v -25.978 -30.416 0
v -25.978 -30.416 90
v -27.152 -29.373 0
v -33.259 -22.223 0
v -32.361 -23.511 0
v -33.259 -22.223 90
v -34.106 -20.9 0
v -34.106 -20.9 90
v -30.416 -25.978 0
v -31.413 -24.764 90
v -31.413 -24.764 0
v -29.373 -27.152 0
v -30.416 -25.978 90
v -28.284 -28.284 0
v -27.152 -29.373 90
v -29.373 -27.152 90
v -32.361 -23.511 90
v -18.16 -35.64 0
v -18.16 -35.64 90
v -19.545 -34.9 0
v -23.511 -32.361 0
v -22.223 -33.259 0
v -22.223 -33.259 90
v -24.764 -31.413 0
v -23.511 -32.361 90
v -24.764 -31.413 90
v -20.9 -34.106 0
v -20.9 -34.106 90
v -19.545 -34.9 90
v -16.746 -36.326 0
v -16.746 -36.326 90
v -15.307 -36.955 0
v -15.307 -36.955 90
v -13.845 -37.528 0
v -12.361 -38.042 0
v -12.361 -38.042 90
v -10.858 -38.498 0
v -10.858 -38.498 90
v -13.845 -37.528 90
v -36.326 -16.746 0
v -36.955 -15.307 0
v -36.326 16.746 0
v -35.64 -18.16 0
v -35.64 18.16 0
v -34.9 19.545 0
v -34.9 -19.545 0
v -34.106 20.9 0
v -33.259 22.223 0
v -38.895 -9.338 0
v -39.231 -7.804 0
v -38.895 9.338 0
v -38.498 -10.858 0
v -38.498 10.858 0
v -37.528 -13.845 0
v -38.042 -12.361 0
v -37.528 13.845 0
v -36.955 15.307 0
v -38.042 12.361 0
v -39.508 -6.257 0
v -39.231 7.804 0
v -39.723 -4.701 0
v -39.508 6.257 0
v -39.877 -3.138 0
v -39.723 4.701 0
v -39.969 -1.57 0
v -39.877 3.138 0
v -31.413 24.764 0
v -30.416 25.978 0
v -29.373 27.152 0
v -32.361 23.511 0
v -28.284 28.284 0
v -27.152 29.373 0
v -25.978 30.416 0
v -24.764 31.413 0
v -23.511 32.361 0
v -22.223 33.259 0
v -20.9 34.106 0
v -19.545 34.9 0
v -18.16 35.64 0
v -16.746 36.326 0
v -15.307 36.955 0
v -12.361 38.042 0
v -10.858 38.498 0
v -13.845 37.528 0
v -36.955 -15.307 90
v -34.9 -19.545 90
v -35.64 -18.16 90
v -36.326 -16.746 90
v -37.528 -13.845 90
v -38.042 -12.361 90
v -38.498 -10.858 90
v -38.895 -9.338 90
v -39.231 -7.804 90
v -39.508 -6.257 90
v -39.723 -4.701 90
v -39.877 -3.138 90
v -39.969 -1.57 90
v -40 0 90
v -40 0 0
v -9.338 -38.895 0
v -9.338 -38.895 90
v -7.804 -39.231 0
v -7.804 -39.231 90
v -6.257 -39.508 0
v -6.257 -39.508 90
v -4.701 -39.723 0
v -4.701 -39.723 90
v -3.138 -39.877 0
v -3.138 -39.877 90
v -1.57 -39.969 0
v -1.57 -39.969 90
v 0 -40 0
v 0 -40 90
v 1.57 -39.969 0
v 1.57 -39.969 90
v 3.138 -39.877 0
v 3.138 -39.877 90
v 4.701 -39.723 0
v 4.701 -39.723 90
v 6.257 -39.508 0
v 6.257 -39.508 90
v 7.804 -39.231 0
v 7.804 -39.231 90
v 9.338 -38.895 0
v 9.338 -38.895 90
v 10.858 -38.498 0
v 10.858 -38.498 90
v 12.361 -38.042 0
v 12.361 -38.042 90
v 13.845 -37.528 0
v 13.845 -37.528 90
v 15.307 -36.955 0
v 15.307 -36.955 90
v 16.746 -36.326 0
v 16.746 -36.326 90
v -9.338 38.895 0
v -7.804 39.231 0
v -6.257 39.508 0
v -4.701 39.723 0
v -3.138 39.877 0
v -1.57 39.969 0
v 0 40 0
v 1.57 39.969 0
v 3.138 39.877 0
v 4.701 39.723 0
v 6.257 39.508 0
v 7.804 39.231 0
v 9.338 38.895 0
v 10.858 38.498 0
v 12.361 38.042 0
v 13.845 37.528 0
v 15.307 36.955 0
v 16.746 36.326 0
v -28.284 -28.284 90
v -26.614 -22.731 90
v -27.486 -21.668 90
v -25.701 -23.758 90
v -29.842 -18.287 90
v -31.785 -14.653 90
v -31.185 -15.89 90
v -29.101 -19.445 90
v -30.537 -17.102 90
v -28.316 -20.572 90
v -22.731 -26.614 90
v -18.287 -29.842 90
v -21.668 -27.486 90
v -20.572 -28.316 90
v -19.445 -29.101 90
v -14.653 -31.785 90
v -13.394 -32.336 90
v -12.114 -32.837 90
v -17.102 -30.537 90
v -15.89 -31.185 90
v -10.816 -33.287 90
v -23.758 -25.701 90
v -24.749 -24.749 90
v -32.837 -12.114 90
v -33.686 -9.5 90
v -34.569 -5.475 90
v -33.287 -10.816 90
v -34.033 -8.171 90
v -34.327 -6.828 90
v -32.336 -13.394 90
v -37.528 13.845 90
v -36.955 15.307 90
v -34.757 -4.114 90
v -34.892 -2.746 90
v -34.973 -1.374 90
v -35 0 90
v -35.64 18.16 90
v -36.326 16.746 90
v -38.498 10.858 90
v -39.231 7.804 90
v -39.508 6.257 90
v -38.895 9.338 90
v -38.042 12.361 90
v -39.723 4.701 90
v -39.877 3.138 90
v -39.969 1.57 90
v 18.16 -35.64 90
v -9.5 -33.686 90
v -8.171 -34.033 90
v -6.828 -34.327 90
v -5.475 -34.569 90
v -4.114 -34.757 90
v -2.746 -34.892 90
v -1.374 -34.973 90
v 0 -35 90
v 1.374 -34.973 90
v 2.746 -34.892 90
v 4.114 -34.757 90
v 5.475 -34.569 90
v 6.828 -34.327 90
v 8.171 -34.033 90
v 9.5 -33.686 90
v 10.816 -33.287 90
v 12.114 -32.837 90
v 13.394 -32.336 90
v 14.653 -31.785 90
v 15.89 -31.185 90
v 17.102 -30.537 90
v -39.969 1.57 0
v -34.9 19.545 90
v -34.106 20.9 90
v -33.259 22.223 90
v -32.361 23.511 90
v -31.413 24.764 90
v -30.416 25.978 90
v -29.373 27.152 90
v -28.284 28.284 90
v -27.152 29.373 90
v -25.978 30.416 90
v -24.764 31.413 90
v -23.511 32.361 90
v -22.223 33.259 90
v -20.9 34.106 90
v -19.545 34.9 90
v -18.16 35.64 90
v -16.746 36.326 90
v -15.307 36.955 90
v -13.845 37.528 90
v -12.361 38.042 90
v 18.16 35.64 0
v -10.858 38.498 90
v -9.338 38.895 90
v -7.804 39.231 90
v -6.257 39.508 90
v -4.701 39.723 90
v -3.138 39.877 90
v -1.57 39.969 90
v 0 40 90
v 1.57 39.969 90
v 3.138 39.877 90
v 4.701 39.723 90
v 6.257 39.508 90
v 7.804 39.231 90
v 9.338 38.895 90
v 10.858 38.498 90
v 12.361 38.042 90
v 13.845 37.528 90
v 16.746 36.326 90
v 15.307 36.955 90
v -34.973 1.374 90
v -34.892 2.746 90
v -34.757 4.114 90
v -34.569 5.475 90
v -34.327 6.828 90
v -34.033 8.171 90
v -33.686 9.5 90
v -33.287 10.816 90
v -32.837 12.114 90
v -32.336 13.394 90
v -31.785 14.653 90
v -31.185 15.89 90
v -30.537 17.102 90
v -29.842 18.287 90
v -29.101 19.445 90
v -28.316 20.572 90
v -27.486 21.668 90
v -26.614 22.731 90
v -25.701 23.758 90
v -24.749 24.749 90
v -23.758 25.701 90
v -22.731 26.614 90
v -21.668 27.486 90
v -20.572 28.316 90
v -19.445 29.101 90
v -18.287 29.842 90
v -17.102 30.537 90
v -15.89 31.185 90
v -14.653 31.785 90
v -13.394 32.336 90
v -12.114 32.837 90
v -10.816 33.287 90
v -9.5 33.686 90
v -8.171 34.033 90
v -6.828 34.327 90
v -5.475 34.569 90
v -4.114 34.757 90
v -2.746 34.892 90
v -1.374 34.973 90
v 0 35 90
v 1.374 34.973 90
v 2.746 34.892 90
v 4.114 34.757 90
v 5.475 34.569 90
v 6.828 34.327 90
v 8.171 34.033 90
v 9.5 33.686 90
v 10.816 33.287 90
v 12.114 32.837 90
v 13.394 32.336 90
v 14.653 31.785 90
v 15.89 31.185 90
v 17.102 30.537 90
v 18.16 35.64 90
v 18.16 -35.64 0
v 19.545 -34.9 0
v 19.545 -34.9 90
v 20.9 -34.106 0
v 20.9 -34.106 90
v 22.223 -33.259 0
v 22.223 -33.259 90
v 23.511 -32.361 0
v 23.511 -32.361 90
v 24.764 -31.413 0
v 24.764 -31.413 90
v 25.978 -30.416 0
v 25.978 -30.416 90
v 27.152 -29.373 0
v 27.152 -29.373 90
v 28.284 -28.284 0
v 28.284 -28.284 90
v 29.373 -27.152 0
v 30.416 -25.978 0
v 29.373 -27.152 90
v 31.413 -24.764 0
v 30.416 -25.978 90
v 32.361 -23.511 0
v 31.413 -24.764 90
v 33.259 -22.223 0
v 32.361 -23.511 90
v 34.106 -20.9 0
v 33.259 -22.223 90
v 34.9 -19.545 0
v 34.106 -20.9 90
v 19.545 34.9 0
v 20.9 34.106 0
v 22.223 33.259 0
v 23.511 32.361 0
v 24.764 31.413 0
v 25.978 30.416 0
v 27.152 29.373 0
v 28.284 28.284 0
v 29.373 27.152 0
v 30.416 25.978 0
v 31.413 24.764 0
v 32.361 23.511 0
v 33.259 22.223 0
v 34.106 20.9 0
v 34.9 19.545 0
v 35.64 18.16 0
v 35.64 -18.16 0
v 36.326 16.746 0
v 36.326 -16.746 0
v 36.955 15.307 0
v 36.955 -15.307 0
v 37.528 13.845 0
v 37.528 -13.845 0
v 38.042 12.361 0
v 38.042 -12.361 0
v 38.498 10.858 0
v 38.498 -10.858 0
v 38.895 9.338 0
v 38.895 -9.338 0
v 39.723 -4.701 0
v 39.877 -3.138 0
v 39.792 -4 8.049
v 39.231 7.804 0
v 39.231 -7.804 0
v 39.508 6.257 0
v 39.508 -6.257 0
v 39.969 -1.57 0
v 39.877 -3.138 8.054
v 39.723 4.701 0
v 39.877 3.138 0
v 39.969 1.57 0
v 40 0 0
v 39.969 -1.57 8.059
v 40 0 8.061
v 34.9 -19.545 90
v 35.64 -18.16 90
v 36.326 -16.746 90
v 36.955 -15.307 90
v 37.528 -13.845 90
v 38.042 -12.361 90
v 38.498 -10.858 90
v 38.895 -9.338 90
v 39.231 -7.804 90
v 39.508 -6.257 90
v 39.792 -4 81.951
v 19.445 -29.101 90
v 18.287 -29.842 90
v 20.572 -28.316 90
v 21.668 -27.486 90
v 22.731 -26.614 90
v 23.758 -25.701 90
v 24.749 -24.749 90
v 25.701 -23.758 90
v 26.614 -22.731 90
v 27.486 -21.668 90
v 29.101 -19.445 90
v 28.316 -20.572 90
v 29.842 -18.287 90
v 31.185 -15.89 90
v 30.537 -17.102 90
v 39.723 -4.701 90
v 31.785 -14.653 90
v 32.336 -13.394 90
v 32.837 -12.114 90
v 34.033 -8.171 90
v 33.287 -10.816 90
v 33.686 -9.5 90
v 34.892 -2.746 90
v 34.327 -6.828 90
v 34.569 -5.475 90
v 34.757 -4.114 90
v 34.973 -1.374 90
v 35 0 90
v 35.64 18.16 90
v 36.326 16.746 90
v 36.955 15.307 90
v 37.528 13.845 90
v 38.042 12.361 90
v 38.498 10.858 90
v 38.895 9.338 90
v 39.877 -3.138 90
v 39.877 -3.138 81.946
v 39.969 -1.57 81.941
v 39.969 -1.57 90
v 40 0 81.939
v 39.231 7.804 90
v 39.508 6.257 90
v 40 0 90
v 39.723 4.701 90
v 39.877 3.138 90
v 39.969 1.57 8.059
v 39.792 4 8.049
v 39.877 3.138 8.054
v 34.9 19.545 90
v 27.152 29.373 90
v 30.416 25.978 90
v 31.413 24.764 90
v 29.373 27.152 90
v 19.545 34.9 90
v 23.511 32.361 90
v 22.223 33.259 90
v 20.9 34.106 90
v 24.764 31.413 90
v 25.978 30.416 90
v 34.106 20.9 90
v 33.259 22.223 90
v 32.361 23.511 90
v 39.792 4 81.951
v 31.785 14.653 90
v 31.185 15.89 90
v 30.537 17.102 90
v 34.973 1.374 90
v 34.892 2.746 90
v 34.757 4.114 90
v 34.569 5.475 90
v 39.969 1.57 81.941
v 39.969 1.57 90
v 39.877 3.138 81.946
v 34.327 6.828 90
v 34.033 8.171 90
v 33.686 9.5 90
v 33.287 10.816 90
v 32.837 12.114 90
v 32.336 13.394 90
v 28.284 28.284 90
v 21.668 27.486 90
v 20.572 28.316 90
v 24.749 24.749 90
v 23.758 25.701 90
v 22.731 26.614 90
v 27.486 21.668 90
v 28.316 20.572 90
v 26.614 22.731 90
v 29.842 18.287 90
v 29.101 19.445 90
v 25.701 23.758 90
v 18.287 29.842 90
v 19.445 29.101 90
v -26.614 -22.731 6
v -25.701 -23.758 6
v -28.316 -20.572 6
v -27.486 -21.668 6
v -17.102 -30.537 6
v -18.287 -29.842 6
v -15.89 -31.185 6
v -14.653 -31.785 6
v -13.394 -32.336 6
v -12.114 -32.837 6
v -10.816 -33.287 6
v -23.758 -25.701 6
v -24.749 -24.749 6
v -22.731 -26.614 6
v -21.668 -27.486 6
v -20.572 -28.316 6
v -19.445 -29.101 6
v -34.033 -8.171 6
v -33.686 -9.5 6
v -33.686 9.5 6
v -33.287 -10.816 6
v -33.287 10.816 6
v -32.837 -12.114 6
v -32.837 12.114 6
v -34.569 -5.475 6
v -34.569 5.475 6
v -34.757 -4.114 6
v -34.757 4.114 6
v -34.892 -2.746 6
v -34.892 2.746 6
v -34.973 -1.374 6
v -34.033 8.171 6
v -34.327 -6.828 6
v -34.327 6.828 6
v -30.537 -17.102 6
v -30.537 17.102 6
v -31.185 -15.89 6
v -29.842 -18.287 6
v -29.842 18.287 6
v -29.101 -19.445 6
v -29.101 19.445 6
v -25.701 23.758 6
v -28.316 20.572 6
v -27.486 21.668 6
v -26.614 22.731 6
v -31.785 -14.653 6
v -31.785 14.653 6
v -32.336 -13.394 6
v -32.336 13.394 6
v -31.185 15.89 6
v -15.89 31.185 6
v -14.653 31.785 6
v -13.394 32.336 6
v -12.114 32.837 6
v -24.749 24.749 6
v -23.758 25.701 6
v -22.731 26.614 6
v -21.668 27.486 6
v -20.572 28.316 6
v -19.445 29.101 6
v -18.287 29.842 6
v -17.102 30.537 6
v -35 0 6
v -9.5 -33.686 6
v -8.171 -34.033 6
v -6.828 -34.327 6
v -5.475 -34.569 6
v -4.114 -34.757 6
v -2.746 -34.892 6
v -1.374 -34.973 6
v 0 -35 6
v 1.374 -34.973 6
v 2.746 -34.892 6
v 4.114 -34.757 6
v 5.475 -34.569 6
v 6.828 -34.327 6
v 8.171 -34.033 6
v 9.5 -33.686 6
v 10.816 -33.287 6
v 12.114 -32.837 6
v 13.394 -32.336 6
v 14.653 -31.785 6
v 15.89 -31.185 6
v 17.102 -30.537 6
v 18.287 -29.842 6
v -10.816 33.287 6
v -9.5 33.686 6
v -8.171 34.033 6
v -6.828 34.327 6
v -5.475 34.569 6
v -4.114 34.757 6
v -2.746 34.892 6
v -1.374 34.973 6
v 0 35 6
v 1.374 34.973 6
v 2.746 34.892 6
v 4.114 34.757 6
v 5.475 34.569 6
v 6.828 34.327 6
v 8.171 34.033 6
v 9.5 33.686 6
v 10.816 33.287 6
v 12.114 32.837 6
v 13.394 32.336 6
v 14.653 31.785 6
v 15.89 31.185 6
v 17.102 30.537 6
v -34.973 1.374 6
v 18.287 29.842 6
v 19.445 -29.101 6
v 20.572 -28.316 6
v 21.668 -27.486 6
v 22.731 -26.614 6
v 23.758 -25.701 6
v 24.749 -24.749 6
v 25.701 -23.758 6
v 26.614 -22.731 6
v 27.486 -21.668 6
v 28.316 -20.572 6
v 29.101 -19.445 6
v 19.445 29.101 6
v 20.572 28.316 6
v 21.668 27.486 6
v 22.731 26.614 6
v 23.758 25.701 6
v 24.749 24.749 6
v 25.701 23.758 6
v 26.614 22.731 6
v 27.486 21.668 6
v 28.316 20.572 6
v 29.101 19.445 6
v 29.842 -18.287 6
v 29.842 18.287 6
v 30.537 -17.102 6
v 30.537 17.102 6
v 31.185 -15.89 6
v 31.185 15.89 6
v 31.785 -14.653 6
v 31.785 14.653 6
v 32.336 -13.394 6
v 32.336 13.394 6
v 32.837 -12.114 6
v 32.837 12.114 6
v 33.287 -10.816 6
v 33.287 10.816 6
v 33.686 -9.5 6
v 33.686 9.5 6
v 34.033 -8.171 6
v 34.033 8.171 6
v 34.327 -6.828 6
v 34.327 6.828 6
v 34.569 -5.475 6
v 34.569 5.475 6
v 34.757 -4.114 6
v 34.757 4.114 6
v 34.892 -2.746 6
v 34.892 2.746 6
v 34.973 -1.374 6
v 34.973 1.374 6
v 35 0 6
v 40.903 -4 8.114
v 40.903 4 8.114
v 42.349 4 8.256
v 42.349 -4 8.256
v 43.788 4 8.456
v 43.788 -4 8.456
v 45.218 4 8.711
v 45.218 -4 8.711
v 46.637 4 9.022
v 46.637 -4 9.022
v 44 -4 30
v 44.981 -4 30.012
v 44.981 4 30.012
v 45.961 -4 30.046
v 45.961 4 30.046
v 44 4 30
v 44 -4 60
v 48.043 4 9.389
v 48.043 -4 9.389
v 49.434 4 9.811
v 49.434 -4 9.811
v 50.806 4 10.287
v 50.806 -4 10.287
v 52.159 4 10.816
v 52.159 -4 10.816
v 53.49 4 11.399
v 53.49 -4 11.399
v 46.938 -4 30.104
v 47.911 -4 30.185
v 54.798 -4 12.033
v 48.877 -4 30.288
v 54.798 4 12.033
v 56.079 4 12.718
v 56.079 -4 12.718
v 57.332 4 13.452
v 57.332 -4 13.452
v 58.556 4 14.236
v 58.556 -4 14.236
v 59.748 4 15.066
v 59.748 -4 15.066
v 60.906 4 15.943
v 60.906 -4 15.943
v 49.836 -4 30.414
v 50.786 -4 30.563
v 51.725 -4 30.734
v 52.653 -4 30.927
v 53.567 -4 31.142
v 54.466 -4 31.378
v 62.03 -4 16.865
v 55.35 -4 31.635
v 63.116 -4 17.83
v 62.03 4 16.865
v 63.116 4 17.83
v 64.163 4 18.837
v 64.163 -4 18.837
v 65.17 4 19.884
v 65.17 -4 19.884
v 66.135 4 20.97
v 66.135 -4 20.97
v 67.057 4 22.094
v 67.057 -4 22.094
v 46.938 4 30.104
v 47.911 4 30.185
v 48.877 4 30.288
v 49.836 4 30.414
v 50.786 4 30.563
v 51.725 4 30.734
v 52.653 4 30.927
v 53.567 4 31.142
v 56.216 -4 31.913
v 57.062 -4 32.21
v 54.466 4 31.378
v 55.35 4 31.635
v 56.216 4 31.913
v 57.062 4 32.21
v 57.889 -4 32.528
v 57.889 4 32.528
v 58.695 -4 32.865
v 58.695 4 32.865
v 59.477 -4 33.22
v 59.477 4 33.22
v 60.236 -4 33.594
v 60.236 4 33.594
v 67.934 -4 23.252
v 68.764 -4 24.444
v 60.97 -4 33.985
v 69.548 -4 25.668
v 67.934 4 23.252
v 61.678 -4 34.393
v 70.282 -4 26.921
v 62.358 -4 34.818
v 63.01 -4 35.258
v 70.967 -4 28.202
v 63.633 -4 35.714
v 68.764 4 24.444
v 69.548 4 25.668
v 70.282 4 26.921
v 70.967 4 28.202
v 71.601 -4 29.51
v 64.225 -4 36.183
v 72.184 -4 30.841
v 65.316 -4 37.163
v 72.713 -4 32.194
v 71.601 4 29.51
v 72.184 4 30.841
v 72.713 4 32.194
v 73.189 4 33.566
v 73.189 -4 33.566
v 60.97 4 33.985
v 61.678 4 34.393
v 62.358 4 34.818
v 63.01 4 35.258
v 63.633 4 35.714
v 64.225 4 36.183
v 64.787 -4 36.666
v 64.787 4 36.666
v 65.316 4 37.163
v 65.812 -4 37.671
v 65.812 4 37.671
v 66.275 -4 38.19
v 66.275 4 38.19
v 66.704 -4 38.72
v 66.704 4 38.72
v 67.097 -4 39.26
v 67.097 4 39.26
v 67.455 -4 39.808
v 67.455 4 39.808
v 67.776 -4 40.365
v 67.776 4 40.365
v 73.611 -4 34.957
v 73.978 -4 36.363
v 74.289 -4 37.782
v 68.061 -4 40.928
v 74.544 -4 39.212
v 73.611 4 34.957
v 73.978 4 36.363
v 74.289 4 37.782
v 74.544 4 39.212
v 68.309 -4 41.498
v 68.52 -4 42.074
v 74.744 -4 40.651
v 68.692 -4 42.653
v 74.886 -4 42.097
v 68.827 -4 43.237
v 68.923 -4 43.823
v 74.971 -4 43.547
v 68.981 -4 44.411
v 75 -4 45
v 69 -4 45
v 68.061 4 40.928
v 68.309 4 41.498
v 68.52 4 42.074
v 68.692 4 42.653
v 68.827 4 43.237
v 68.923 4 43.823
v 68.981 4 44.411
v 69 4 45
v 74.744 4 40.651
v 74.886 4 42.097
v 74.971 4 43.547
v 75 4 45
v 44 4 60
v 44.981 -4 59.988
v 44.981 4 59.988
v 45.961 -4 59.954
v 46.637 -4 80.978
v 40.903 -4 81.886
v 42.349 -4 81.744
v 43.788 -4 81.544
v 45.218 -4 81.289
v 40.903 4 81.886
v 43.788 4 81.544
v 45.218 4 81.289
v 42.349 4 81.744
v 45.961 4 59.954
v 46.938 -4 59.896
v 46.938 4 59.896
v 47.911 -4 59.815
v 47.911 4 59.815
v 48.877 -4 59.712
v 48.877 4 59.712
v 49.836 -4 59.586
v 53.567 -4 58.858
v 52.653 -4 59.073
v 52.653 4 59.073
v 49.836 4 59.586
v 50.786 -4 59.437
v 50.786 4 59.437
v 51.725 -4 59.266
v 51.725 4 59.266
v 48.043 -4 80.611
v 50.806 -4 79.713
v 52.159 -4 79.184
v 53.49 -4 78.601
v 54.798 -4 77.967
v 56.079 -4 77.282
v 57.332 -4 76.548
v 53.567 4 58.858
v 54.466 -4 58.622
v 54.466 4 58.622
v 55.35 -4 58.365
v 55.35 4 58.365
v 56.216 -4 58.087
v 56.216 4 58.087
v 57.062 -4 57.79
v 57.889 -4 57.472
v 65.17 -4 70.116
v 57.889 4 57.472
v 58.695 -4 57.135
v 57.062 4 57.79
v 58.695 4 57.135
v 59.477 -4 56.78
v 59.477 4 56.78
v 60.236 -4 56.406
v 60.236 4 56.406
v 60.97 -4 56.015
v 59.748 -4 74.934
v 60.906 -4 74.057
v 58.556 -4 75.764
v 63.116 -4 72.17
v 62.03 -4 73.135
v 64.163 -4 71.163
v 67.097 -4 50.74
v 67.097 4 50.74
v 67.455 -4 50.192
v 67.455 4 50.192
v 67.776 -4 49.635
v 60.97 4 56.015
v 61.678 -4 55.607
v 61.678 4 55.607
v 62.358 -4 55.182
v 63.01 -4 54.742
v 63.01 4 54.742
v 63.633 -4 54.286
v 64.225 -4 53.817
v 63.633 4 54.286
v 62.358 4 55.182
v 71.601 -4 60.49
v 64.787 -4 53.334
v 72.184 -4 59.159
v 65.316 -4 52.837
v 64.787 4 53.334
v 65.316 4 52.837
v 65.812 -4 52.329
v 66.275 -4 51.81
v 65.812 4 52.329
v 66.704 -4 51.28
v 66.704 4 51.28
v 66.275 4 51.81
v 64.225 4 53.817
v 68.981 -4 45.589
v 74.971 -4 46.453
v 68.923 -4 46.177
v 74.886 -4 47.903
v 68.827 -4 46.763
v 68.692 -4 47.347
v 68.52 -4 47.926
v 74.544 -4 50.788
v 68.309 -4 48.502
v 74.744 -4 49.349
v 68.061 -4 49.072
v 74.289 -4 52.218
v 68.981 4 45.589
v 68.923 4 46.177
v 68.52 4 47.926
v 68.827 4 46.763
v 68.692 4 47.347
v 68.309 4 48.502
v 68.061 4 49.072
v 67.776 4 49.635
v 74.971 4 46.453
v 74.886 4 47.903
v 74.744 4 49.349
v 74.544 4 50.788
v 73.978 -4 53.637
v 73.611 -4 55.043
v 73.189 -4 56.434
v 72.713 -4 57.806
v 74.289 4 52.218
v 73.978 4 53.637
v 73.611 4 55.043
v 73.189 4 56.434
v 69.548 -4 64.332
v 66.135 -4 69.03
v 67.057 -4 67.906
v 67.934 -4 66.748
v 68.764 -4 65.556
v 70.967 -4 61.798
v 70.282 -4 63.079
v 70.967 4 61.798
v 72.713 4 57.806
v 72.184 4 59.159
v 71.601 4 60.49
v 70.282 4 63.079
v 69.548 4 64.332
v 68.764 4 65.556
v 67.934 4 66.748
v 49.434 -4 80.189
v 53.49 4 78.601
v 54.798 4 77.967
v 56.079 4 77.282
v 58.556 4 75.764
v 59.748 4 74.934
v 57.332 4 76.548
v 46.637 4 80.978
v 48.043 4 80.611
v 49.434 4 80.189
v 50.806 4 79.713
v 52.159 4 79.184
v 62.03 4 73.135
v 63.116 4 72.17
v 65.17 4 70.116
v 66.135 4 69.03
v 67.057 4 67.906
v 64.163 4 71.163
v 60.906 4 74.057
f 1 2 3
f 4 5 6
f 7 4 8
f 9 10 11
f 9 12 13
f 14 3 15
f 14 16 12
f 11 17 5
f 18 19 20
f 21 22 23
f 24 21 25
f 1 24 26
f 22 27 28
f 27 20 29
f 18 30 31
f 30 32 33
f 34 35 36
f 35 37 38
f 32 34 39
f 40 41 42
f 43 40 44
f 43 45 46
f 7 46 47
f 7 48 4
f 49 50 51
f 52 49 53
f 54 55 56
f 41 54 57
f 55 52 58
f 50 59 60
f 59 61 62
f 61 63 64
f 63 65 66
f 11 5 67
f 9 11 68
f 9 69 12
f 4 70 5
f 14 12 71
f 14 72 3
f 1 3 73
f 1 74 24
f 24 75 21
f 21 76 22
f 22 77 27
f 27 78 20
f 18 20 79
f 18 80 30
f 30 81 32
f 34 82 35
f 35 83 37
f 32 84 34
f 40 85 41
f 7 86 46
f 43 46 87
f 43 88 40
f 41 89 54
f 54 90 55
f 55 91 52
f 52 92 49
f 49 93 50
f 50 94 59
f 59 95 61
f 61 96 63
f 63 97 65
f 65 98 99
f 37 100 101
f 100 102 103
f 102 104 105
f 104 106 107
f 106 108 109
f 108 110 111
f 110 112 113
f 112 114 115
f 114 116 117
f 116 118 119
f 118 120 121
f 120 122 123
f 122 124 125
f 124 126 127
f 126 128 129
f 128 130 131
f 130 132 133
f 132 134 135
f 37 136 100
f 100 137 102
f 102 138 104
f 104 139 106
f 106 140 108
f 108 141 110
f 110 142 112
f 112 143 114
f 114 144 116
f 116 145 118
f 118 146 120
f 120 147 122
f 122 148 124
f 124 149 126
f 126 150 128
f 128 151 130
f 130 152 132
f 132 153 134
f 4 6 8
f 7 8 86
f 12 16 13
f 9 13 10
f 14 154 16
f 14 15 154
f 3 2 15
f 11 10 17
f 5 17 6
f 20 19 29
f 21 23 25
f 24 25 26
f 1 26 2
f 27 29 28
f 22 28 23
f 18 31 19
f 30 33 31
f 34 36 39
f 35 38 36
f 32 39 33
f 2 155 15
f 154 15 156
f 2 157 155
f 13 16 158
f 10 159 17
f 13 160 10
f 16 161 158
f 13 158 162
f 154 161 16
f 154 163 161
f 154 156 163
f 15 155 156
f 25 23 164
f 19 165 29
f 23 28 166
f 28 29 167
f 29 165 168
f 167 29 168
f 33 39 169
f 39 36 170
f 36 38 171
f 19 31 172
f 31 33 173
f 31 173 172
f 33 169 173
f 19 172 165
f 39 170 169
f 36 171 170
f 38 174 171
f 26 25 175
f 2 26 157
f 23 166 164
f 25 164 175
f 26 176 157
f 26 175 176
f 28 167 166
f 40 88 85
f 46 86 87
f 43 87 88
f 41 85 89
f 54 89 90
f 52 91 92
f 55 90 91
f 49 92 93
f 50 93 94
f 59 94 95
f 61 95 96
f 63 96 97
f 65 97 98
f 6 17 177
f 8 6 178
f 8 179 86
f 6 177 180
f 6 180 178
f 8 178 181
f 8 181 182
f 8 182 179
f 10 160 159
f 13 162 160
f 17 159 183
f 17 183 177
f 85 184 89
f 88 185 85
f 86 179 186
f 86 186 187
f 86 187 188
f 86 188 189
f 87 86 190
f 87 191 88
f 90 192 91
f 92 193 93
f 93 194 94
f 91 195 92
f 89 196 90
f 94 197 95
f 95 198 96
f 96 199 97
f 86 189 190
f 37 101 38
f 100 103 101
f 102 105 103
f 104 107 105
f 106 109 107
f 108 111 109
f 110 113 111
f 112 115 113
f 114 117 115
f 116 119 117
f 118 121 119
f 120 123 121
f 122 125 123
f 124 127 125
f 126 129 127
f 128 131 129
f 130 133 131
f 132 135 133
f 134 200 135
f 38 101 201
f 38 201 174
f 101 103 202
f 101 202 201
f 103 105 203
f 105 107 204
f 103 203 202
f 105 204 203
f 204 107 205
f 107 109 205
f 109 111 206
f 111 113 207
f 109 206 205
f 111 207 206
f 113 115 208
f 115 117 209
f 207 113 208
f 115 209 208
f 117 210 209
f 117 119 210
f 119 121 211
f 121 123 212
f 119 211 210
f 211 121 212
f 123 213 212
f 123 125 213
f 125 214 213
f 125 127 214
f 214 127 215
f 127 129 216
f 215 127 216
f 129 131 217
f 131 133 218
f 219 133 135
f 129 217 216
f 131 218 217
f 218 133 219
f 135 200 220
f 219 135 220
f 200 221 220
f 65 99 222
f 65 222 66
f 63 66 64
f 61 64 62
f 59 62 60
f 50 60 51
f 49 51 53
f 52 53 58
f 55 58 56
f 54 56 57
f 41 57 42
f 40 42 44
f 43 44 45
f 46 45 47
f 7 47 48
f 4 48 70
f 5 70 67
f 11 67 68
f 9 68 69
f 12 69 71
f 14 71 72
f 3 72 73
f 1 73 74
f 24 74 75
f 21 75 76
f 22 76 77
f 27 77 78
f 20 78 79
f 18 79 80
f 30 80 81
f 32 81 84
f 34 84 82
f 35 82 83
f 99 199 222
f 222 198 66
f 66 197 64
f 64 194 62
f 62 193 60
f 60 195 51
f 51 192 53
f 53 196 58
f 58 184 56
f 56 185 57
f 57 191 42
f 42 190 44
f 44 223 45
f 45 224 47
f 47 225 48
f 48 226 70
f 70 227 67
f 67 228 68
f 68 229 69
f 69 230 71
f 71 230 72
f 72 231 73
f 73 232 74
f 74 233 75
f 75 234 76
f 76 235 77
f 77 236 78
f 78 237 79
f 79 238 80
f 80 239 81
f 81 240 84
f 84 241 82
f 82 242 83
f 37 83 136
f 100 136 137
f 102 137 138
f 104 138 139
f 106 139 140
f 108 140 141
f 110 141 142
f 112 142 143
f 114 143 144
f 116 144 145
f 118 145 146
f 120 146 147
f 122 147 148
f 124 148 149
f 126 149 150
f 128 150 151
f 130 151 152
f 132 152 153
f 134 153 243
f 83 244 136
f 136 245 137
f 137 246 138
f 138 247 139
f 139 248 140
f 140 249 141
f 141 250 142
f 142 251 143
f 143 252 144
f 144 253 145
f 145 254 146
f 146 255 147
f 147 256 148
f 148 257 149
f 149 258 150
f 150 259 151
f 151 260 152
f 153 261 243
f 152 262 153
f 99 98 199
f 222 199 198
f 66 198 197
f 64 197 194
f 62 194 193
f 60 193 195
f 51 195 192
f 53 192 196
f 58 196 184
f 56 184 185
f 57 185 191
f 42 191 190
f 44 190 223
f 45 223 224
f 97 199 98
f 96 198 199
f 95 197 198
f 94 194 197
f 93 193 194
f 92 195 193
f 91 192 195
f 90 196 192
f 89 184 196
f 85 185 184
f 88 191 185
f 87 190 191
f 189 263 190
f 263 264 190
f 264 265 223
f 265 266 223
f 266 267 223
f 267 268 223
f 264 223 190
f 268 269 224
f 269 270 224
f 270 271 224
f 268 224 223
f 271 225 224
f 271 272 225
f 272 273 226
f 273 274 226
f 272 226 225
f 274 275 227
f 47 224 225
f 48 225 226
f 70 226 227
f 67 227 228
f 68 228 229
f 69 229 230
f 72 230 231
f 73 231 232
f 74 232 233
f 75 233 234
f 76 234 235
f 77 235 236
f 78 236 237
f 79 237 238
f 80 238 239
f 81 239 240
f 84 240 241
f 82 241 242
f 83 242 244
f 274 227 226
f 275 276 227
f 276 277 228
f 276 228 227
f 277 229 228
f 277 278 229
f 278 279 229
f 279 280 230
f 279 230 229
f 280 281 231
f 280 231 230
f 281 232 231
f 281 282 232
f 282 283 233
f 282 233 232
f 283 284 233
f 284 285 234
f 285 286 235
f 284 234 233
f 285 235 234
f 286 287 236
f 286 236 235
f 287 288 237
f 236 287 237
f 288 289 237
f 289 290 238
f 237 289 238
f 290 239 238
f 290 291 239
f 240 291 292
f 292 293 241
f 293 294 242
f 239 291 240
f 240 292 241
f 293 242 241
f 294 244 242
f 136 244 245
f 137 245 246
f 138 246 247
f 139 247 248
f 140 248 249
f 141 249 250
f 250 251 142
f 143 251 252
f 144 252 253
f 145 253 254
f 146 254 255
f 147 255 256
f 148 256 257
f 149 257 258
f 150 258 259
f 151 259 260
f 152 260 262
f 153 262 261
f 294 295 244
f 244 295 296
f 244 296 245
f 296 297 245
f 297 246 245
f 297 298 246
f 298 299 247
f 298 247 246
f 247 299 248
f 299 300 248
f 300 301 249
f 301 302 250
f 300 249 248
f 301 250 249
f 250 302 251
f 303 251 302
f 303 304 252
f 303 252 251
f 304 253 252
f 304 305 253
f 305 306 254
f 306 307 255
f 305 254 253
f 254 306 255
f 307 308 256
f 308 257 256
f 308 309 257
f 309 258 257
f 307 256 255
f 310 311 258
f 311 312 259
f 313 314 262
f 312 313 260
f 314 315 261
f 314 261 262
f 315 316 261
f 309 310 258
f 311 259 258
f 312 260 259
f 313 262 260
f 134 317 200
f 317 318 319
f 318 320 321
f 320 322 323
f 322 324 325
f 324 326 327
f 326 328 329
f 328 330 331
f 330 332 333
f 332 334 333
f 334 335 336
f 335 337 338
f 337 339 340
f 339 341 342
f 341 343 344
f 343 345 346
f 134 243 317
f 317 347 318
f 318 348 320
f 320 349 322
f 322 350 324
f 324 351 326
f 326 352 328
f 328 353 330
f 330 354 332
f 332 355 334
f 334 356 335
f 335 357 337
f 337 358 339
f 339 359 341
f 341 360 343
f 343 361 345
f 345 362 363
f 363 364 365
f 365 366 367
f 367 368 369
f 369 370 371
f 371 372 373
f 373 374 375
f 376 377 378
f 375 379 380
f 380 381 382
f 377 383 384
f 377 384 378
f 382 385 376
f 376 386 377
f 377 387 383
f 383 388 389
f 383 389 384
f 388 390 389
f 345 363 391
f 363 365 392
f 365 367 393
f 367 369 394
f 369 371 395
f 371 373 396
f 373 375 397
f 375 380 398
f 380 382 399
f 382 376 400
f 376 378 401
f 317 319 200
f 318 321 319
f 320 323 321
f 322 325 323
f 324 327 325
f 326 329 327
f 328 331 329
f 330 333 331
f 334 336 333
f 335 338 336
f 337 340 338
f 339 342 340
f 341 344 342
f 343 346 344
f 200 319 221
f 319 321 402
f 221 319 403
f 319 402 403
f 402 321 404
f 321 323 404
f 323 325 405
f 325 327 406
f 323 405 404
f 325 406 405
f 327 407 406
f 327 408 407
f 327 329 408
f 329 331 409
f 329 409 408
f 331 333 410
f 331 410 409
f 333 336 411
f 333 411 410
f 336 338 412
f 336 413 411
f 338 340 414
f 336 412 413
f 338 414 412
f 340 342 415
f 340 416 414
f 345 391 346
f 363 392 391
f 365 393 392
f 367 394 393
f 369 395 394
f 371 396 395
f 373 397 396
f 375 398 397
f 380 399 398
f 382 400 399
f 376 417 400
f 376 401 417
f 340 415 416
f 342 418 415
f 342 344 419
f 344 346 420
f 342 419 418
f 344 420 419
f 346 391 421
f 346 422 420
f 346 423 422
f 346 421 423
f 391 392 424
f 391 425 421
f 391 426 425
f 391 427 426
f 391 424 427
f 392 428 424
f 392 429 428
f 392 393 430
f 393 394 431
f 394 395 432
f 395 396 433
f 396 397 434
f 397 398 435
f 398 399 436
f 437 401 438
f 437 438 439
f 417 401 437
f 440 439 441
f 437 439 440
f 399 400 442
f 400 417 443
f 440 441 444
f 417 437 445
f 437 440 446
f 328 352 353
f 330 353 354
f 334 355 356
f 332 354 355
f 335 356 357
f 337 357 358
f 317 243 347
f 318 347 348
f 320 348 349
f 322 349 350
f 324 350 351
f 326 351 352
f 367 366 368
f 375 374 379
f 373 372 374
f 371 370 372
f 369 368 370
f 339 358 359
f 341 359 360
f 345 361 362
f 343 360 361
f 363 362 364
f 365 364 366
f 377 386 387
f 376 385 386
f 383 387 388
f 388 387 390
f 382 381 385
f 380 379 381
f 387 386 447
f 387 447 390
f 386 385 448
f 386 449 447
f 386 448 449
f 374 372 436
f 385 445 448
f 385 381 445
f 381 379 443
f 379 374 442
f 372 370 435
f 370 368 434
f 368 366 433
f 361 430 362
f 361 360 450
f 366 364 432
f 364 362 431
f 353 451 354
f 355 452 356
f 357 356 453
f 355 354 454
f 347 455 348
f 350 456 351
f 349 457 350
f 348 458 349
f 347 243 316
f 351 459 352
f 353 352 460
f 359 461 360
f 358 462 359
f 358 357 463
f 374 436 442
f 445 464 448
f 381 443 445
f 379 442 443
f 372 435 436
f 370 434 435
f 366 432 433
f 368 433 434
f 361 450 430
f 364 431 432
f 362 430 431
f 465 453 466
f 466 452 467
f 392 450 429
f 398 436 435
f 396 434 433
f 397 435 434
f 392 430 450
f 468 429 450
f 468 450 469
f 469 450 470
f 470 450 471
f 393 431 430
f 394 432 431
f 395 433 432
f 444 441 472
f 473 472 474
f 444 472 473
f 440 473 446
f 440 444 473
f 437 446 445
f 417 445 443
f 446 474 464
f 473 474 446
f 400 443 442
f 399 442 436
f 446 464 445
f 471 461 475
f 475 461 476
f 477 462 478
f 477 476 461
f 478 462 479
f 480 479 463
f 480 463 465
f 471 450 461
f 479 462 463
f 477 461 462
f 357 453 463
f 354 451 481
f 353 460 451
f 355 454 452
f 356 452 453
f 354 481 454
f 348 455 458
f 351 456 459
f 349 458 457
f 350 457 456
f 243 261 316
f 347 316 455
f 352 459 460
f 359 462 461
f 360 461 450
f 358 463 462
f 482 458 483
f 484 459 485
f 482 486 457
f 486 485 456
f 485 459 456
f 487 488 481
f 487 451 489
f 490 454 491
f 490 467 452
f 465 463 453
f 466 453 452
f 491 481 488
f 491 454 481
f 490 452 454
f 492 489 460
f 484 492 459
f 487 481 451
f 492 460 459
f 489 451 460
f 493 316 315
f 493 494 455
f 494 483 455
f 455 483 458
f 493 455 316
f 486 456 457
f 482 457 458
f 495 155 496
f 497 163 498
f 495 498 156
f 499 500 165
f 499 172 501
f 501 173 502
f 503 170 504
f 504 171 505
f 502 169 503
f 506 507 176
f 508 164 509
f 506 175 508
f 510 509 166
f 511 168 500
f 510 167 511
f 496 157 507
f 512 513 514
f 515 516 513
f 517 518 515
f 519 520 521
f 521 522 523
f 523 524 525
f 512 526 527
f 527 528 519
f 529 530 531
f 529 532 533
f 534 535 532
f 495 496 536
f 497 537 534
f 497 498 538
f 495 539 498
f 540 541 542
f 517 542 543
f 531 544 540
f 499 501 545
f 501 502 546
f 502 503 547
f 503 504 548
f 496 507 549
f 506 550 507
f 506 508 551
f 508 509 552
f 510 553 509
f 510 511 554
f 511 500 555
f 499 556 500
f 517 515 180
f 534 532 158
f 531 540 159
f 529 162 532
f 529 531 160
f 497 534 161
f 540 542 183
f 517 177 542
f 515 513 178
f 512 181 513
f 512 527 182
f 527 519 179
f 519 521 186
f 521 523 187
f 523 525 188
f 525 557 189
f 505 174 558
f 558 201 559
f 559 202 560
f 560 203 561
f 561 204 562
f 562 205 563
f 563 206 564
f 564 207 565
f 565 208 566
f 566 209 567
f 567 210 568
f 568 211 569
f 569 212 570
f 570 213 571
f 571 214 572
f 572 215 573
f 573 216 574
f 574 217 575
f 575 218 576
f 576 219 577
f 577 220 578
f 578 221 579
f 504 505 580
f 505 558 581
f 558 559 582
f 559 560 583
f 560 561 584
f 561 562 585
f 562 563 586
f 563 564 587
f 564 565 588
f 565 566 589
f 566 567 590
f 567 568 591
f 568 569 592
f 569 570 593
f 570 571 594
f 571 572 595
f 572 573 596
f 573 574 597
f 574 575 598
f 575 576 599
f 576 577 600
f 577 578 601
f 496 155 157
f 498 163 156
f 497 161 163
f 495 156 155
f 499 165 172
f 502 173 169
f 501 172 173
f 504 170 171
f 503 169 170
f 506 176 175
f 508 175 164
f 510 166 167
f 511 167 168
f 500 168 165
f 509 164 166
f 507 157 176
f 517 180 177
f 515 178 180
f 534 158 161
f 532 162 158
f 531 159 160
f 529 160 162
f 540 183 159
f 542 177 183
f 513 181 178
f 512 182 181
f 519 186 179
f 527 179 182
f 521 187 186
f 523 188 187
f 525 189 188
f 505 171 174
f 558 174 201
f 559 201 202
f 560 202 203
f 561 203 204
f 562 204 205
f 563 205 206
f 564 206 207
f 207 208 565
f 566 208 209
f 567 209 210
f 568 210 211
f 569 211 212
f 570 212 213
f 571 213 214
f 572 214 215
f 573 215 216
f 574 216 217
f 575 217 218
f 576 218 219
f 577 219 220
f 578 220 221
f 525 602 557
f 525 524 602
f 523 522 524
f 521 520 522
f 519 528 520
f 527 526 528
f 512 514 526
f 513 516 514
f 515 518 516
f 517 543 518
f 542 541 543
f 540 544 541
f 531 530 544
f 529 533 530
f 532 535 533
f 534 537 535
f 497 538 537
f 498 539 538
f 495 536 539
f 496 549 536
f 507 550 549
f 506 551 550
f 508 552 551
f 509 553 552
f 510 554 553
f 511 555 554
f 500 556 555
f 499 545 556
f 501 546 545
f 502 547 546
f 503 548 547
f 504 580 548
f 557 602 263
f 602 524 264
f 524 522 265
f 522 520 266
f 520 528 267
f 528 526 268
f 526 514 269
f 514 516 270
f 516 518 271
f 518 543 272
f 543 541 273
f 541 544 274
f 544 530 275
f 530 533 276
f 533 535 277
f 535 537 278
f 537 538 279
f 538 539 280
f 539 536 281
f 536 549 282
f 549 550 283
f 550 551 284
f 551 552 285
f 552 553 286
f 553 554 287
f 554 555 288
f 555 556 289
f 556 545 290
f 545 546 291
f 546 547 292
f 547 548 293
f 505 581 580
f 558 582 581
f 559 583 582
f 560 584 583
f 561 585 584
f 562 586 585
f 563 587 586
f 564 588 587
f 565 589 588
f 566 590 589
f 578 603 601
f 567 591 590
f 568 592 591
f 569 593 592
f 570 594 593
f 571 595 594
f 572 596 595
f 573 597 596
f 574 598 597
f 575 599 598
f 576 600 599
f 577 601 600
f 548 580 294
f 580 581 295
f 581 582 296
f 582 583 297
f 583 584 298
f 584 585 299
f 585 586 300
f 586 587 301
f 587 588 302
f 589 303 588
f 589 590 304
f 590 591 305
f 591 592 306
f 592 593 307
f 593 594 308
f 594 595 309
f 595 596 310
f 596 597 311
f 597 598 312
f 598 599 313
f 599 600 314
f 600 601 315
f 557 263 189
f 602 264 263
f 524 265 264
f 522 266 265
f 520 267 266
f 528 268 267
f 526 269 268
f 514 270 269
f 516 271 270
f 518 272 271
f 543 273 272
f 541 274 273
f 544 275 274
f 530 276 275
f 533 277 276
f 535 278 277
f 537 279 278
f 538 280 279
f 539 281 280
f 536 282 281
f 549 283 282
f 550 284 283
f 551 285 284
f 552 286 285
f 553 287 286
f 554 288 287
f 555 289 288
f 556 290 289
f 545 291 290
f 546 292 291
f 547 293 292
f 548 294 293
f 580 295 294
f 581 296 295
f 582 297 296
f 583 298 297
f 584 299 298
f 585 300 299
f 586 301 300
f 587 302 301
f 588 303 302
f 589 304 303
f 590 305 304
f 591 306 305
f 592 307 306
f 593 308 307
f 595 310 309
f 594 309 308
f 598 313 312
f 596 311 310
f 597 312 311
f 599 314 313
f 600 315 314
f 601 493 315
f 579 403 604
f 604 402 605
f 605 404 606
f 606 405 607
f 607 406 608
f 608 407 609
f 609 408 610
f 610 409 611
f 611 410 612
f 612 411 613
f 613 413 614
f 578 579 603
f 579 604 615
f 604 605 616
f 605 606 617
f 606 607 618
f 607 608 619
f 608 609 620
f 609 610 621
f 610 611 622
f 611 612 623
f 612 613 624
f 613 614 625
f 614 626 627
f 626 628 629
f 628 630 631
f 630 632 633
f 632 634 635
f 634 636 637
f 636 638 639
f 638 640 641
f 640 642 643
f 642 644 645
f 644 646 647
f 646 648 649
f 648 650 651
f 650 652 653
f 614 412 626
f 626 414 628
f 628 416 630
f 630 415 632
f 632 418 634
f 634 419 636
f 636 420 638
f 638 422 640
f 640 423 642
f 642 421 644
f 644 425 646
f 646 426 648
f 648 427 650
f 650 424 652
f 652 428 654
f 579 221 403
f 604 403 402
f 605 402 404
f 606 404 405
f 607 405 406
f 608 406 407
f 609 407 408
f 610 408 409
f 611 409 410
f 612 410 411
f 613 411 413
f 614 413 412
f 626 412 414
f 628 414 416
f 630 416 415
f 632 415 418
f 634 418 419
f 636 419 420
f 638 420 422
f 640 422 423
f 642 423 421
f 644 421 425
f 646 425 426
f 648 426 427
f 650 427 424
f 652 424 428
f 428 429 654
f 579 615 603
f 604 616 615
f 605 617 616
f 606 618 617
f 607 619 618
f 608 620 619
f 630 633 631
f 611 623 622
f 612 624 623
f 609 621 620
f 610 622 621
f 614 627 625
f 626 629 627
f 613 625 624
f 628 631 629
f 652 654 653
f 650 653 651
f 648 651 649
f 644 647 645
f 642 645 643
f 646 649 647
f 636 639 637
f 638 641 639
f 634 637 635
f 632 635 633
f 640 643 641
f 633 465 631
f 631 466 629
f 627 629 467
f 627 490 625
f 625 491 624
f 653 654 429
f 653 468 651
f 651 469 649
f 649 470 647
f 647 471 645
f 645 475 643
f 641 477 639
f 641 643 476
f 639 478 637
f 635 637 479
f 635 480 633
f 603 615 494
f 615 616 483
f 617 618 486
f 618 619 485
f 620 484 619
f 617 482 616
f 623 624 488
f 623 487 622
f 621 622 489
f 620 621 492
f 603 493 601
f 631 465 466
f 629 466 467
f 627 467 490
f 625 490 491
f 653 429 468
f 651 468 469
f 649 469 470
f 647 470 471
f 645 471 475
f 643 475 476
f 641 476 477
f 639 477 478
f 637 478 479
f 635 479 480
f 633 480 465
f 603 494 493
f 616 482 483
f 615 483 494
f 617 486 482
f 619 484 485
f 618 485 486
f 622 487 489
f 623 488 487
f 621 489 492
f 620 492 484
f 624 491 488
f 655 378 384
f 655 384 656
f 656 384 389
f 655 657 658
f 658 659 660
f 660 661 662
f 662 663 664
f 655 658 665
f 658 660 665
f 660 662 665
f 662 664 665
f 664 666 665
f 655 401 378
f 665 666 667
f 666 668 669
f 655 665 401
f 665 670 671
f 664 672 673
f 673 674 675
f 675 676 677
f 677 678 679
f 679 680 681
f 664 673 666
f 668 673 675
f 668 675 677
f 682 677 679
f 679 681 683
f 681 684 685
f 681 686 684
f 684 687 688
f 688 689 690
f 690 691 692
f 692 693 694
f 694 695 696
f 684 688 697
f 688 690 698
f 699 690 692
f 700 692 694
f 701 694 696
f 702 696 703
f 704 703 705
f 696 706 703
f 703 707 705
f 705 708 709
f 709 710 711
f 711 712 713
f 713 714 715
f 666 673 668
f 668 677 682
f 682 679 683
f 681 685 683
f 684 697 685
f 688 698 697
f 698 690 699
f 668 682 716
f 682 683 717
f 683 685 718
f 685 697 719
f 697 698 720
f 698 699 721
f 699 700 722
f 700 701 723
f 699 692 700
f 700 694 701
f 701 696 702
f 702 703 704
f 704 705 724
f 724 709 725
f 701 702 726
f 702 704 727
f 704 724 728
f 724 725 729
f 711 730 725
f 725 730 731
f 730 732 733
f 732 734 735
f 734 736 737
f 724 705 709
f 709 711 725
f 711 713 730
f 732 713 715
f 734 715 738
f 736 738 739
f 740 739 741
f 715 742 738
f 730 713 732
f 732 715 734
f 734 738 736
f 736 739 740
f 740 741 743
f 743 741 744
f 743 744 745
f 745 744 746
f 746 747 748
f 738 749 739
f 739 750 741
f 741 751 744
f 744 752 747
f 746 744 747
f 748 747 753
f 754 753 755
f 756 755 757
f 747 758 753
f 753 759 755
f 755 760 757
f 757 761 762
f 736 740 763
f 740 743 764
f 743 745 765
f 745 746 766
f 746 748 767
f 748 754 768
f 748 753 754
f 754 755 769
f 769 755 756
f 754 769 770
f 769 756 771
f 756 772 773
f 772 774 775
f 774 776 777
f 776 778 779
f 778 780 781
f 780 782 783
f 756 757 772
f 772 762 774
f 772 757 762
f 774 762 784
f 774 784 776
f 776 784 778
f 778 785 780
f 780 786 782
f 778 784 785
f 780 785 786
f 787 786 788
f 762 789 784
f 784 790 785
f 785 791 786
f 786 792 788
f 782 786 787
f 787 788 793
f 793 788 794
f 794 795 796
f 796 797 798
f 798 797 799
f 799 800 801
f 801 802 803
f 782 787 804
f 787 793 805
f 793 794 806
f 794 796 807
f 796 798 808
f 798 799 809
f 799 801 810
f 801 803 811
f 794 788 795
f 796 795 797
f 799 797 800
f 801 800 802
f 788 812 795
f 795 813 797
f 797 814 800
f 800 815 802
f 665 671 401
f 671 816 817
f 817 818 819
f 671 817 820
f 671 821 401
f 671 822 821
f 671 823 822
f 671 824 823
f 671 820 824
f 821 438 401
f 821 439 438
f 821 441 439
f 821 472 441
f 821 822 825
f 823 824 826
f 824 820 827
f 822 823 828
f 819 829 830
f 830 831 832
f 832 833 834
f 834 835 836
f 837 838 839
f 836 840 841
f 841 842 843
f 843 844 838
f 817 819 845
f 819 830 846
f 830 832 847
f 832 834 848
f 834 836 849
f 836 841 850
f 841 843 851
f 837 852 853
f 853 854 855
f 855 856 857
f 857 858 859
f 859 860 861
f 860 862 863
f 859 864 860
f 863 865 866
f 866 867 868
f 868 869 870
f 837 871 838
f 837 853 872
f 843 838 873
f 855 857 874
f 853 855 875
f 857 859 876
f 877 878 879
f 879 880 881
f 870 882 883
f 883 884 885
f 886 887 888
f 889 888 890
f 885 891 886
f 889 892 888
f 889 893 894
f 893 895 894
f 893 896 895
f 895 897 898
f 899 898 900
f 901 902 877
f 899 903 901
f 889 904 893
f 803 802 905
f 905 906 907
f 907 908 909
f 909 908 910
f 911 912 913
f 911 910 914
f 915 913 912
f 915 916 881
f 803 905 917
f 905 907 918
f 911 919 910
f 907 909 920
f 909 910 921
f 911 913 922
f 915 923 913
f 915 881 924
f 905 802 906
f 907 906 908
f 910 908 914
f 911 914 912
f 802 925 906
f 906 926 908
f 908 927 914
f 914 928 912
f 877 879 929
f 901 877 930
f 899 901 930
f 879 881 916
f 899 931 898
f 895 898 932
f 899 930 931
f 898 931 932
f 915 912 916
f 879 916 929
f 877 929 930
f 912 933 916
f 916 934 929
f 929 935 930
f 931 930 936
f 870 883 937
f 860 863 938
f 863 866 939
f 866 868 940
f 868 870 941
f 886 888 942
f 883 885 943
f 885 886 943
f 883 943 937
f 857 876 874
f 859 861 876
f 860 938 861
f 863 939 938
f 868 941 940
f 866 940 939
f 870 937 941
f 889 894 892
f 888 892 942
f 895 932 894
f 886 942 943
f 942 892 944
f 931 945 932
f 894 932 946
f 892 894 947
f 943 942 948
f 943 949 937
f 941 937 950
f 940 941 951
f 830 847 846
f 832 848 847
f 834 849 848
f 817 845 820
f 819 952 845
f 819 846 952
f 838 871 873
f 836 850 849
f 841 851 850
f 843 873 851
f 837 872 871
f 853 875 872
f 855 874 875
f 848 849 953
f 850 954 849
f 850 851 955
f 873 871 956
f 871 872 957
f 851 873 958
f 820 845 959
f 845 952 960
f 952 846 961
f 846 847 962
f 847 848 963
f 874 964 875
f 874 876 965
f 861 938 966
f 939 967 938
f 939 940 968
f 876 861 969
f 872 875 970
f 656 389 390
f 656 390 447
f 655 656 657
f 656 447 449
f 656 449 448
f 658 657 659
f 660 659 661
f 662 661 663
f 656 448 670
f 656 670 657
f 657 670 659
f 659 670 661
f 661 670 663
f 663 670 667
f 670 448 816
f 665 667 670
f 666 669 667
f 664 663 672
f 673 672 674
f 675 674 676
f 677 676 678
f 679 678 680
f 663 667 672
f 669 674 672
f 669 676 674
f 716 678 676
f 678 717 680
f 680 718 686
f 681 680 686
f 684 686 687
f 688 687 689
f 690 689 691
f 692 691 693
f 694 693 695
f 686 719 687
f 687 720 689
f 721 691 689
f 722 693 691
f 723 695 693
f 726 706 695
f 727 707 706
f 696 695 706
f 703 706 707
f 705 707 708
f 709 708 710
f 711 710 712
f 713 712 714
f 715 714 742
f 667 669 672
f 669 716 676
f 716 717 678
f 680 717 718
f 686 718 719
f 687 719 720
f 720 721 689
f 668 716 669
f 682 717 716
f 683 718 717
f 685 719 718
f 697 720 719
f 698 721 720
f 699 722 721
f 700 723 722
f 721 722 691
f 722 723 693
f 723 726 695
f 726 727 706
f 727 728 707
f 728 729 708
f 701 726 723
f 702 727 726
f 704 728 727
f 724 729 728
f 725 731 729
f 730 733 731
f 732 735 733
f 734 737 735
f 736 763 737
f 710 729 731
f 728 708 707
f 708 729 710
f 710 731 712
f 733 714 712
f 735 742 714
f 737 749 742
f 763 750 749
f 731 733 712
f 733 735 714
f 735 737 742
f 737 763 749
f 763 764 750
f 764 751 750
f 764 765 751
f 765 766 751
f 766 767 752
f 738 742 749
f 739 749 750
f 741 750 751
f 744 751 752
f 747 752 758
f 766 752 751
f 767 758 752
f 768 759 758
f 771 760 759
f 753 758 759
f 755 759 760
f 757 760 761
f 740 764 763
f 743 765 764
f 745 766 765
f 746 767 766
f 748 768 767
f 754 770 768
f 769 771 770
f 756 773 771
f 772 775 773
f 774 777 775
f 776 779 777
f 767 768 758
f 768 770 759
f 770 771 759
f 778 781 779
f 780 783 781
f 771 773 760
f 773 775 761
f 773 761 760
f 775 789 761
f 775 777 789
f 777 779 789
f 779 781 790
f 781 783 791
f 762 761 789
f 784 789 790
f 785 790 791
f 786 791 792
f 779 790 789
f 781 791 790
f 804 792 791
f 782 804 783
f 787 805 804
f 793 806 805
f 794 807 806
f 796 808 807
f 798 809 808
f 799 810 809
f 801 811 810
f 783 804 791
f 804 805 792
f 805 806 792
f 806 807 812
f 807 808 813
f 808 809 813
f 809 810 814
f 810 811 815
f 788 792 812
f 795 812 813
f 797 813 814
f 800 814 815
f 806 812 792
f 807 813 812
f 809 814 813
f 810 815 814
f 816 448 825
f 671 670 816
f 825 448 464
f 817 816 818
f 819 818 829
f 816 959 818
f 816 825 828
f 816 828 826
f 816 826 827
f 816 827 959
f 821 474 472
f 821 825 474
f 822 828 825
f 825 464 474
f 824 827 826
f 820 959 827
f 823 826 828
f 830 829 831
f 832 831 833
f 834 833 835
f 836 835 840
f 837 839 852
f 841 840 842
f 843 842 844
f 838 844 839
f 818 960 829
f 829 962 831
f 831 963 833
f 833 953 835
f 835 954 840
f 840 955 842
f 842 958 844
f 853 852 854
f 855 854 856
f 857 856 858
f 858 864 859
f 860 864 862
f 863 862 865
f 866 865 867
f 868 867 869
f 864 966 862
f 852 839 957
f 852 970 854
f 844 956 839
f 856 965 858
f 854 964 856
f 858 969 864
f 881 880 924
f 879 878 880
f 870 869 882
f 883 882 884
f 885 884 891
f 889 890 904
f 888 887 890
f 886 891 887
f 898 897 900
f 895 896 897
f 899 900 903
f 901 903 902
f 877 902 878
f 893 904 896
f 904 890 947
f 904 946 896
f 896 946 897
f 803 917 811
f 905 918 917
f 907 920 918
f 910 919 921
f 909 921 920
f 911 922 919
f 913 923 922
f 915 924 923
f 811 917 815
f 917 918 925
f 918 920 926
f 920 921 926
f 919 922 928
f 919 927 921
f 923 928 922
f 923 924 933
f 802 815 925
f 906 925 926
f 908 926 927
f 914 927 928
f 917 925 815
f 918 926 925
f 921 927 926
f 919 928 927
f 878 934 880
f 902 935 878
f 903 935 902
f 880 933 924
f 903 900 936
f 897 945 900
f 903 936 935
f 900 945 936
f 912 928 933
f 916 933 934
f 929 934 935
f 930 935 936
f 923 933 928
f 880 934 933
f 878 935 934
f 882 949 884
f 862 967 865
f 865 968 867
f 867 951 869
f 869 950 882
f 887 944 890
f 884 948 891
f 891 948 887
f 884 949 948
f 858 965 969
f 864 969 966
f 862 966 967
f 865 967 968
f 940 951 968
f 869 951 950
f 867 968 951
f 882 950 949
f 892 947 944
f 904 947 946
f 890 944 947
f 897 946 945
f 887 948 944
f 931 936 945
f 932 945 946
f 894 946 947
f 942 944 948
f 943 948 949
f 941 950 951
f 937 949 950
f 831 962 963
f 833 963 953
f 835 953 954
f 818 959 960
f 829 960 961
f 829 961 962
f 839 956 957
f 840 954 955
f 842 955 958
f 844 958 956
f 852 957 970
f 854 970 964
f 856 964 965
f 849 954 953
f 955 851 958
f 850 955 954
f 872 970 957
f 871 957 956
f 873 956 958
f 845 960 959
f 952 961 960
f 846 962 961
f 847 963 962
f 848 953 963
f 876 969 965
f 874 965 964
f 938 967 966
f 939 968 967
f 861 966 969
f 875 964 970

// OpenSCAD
$fn = 160;

// 本体寸法（mm）
outer_diameter = 80;
inner_diameter = 70;
cup_height = 90;
bottom_thickness = 6;

// 取手寸法（mm）
handle_inner_width = 25;
handle_inner_height = 30;
handle_depth = 8;
handle_web_thickness = 6;
handle_outer_thickness = 6;

attachment_overlap = 2;
epsilon = 0.1;

handle_base_x = outer_diameter / 2 - attachment_overlap;
handle_center_z = cup_height / 2;

// 外側を真の半円にし、指定寸法の開口と十分な肉厚を確保
handle_outer_radius =
    handle_web_thickness
    + handle_inner_width
    + handle_outer_thickness;

// +X 側の半円。直線側は x = 0。
module right_half_disk(radius) {
    intersection() {
        circle(r = radius);
        translate([0, -radius])
            square([radius, 2 * radius]);
    }
}

module mug_body() {
    difference() {
        cylinder(d = outer_diameter, h = cup_height);

        // 上面まで貫通させ、底面を6mm残す
        translate([0, 0, bottom_thickness])
            cylinder(
                d = inner_diameter,
                h = cup_height - bottom_thickness + epsilon
            );
    }
}

module handle_profile() {
    difference() {
        right_half_disk(handle_outer_radius);

        // 開口の最大寸法：幅25mm、高さ30mm
        translate([handle_web_thickness, 0])
            scale([
                handle_inner_width,
                handle_inner_height / 2
            ])
                right_half_disk(1);
    }
}

module mug_handle() {
    // 2DのX・Yを、それぞれ実空間のX・Zへ対応させる
    translate([handle_base_x, 0, handle_center_z])
        rotate([90, 0, 0])
            linear_extrude(
                height = handle_depth,
                center = true,
                convexity = 10
            )
                handle_profile();
}

// 取手の直線側を本体外壁へ食い込ませ、一体化する
render(convexity = 10)
    union() {
        mug_body();
        mug_handle();
    }
